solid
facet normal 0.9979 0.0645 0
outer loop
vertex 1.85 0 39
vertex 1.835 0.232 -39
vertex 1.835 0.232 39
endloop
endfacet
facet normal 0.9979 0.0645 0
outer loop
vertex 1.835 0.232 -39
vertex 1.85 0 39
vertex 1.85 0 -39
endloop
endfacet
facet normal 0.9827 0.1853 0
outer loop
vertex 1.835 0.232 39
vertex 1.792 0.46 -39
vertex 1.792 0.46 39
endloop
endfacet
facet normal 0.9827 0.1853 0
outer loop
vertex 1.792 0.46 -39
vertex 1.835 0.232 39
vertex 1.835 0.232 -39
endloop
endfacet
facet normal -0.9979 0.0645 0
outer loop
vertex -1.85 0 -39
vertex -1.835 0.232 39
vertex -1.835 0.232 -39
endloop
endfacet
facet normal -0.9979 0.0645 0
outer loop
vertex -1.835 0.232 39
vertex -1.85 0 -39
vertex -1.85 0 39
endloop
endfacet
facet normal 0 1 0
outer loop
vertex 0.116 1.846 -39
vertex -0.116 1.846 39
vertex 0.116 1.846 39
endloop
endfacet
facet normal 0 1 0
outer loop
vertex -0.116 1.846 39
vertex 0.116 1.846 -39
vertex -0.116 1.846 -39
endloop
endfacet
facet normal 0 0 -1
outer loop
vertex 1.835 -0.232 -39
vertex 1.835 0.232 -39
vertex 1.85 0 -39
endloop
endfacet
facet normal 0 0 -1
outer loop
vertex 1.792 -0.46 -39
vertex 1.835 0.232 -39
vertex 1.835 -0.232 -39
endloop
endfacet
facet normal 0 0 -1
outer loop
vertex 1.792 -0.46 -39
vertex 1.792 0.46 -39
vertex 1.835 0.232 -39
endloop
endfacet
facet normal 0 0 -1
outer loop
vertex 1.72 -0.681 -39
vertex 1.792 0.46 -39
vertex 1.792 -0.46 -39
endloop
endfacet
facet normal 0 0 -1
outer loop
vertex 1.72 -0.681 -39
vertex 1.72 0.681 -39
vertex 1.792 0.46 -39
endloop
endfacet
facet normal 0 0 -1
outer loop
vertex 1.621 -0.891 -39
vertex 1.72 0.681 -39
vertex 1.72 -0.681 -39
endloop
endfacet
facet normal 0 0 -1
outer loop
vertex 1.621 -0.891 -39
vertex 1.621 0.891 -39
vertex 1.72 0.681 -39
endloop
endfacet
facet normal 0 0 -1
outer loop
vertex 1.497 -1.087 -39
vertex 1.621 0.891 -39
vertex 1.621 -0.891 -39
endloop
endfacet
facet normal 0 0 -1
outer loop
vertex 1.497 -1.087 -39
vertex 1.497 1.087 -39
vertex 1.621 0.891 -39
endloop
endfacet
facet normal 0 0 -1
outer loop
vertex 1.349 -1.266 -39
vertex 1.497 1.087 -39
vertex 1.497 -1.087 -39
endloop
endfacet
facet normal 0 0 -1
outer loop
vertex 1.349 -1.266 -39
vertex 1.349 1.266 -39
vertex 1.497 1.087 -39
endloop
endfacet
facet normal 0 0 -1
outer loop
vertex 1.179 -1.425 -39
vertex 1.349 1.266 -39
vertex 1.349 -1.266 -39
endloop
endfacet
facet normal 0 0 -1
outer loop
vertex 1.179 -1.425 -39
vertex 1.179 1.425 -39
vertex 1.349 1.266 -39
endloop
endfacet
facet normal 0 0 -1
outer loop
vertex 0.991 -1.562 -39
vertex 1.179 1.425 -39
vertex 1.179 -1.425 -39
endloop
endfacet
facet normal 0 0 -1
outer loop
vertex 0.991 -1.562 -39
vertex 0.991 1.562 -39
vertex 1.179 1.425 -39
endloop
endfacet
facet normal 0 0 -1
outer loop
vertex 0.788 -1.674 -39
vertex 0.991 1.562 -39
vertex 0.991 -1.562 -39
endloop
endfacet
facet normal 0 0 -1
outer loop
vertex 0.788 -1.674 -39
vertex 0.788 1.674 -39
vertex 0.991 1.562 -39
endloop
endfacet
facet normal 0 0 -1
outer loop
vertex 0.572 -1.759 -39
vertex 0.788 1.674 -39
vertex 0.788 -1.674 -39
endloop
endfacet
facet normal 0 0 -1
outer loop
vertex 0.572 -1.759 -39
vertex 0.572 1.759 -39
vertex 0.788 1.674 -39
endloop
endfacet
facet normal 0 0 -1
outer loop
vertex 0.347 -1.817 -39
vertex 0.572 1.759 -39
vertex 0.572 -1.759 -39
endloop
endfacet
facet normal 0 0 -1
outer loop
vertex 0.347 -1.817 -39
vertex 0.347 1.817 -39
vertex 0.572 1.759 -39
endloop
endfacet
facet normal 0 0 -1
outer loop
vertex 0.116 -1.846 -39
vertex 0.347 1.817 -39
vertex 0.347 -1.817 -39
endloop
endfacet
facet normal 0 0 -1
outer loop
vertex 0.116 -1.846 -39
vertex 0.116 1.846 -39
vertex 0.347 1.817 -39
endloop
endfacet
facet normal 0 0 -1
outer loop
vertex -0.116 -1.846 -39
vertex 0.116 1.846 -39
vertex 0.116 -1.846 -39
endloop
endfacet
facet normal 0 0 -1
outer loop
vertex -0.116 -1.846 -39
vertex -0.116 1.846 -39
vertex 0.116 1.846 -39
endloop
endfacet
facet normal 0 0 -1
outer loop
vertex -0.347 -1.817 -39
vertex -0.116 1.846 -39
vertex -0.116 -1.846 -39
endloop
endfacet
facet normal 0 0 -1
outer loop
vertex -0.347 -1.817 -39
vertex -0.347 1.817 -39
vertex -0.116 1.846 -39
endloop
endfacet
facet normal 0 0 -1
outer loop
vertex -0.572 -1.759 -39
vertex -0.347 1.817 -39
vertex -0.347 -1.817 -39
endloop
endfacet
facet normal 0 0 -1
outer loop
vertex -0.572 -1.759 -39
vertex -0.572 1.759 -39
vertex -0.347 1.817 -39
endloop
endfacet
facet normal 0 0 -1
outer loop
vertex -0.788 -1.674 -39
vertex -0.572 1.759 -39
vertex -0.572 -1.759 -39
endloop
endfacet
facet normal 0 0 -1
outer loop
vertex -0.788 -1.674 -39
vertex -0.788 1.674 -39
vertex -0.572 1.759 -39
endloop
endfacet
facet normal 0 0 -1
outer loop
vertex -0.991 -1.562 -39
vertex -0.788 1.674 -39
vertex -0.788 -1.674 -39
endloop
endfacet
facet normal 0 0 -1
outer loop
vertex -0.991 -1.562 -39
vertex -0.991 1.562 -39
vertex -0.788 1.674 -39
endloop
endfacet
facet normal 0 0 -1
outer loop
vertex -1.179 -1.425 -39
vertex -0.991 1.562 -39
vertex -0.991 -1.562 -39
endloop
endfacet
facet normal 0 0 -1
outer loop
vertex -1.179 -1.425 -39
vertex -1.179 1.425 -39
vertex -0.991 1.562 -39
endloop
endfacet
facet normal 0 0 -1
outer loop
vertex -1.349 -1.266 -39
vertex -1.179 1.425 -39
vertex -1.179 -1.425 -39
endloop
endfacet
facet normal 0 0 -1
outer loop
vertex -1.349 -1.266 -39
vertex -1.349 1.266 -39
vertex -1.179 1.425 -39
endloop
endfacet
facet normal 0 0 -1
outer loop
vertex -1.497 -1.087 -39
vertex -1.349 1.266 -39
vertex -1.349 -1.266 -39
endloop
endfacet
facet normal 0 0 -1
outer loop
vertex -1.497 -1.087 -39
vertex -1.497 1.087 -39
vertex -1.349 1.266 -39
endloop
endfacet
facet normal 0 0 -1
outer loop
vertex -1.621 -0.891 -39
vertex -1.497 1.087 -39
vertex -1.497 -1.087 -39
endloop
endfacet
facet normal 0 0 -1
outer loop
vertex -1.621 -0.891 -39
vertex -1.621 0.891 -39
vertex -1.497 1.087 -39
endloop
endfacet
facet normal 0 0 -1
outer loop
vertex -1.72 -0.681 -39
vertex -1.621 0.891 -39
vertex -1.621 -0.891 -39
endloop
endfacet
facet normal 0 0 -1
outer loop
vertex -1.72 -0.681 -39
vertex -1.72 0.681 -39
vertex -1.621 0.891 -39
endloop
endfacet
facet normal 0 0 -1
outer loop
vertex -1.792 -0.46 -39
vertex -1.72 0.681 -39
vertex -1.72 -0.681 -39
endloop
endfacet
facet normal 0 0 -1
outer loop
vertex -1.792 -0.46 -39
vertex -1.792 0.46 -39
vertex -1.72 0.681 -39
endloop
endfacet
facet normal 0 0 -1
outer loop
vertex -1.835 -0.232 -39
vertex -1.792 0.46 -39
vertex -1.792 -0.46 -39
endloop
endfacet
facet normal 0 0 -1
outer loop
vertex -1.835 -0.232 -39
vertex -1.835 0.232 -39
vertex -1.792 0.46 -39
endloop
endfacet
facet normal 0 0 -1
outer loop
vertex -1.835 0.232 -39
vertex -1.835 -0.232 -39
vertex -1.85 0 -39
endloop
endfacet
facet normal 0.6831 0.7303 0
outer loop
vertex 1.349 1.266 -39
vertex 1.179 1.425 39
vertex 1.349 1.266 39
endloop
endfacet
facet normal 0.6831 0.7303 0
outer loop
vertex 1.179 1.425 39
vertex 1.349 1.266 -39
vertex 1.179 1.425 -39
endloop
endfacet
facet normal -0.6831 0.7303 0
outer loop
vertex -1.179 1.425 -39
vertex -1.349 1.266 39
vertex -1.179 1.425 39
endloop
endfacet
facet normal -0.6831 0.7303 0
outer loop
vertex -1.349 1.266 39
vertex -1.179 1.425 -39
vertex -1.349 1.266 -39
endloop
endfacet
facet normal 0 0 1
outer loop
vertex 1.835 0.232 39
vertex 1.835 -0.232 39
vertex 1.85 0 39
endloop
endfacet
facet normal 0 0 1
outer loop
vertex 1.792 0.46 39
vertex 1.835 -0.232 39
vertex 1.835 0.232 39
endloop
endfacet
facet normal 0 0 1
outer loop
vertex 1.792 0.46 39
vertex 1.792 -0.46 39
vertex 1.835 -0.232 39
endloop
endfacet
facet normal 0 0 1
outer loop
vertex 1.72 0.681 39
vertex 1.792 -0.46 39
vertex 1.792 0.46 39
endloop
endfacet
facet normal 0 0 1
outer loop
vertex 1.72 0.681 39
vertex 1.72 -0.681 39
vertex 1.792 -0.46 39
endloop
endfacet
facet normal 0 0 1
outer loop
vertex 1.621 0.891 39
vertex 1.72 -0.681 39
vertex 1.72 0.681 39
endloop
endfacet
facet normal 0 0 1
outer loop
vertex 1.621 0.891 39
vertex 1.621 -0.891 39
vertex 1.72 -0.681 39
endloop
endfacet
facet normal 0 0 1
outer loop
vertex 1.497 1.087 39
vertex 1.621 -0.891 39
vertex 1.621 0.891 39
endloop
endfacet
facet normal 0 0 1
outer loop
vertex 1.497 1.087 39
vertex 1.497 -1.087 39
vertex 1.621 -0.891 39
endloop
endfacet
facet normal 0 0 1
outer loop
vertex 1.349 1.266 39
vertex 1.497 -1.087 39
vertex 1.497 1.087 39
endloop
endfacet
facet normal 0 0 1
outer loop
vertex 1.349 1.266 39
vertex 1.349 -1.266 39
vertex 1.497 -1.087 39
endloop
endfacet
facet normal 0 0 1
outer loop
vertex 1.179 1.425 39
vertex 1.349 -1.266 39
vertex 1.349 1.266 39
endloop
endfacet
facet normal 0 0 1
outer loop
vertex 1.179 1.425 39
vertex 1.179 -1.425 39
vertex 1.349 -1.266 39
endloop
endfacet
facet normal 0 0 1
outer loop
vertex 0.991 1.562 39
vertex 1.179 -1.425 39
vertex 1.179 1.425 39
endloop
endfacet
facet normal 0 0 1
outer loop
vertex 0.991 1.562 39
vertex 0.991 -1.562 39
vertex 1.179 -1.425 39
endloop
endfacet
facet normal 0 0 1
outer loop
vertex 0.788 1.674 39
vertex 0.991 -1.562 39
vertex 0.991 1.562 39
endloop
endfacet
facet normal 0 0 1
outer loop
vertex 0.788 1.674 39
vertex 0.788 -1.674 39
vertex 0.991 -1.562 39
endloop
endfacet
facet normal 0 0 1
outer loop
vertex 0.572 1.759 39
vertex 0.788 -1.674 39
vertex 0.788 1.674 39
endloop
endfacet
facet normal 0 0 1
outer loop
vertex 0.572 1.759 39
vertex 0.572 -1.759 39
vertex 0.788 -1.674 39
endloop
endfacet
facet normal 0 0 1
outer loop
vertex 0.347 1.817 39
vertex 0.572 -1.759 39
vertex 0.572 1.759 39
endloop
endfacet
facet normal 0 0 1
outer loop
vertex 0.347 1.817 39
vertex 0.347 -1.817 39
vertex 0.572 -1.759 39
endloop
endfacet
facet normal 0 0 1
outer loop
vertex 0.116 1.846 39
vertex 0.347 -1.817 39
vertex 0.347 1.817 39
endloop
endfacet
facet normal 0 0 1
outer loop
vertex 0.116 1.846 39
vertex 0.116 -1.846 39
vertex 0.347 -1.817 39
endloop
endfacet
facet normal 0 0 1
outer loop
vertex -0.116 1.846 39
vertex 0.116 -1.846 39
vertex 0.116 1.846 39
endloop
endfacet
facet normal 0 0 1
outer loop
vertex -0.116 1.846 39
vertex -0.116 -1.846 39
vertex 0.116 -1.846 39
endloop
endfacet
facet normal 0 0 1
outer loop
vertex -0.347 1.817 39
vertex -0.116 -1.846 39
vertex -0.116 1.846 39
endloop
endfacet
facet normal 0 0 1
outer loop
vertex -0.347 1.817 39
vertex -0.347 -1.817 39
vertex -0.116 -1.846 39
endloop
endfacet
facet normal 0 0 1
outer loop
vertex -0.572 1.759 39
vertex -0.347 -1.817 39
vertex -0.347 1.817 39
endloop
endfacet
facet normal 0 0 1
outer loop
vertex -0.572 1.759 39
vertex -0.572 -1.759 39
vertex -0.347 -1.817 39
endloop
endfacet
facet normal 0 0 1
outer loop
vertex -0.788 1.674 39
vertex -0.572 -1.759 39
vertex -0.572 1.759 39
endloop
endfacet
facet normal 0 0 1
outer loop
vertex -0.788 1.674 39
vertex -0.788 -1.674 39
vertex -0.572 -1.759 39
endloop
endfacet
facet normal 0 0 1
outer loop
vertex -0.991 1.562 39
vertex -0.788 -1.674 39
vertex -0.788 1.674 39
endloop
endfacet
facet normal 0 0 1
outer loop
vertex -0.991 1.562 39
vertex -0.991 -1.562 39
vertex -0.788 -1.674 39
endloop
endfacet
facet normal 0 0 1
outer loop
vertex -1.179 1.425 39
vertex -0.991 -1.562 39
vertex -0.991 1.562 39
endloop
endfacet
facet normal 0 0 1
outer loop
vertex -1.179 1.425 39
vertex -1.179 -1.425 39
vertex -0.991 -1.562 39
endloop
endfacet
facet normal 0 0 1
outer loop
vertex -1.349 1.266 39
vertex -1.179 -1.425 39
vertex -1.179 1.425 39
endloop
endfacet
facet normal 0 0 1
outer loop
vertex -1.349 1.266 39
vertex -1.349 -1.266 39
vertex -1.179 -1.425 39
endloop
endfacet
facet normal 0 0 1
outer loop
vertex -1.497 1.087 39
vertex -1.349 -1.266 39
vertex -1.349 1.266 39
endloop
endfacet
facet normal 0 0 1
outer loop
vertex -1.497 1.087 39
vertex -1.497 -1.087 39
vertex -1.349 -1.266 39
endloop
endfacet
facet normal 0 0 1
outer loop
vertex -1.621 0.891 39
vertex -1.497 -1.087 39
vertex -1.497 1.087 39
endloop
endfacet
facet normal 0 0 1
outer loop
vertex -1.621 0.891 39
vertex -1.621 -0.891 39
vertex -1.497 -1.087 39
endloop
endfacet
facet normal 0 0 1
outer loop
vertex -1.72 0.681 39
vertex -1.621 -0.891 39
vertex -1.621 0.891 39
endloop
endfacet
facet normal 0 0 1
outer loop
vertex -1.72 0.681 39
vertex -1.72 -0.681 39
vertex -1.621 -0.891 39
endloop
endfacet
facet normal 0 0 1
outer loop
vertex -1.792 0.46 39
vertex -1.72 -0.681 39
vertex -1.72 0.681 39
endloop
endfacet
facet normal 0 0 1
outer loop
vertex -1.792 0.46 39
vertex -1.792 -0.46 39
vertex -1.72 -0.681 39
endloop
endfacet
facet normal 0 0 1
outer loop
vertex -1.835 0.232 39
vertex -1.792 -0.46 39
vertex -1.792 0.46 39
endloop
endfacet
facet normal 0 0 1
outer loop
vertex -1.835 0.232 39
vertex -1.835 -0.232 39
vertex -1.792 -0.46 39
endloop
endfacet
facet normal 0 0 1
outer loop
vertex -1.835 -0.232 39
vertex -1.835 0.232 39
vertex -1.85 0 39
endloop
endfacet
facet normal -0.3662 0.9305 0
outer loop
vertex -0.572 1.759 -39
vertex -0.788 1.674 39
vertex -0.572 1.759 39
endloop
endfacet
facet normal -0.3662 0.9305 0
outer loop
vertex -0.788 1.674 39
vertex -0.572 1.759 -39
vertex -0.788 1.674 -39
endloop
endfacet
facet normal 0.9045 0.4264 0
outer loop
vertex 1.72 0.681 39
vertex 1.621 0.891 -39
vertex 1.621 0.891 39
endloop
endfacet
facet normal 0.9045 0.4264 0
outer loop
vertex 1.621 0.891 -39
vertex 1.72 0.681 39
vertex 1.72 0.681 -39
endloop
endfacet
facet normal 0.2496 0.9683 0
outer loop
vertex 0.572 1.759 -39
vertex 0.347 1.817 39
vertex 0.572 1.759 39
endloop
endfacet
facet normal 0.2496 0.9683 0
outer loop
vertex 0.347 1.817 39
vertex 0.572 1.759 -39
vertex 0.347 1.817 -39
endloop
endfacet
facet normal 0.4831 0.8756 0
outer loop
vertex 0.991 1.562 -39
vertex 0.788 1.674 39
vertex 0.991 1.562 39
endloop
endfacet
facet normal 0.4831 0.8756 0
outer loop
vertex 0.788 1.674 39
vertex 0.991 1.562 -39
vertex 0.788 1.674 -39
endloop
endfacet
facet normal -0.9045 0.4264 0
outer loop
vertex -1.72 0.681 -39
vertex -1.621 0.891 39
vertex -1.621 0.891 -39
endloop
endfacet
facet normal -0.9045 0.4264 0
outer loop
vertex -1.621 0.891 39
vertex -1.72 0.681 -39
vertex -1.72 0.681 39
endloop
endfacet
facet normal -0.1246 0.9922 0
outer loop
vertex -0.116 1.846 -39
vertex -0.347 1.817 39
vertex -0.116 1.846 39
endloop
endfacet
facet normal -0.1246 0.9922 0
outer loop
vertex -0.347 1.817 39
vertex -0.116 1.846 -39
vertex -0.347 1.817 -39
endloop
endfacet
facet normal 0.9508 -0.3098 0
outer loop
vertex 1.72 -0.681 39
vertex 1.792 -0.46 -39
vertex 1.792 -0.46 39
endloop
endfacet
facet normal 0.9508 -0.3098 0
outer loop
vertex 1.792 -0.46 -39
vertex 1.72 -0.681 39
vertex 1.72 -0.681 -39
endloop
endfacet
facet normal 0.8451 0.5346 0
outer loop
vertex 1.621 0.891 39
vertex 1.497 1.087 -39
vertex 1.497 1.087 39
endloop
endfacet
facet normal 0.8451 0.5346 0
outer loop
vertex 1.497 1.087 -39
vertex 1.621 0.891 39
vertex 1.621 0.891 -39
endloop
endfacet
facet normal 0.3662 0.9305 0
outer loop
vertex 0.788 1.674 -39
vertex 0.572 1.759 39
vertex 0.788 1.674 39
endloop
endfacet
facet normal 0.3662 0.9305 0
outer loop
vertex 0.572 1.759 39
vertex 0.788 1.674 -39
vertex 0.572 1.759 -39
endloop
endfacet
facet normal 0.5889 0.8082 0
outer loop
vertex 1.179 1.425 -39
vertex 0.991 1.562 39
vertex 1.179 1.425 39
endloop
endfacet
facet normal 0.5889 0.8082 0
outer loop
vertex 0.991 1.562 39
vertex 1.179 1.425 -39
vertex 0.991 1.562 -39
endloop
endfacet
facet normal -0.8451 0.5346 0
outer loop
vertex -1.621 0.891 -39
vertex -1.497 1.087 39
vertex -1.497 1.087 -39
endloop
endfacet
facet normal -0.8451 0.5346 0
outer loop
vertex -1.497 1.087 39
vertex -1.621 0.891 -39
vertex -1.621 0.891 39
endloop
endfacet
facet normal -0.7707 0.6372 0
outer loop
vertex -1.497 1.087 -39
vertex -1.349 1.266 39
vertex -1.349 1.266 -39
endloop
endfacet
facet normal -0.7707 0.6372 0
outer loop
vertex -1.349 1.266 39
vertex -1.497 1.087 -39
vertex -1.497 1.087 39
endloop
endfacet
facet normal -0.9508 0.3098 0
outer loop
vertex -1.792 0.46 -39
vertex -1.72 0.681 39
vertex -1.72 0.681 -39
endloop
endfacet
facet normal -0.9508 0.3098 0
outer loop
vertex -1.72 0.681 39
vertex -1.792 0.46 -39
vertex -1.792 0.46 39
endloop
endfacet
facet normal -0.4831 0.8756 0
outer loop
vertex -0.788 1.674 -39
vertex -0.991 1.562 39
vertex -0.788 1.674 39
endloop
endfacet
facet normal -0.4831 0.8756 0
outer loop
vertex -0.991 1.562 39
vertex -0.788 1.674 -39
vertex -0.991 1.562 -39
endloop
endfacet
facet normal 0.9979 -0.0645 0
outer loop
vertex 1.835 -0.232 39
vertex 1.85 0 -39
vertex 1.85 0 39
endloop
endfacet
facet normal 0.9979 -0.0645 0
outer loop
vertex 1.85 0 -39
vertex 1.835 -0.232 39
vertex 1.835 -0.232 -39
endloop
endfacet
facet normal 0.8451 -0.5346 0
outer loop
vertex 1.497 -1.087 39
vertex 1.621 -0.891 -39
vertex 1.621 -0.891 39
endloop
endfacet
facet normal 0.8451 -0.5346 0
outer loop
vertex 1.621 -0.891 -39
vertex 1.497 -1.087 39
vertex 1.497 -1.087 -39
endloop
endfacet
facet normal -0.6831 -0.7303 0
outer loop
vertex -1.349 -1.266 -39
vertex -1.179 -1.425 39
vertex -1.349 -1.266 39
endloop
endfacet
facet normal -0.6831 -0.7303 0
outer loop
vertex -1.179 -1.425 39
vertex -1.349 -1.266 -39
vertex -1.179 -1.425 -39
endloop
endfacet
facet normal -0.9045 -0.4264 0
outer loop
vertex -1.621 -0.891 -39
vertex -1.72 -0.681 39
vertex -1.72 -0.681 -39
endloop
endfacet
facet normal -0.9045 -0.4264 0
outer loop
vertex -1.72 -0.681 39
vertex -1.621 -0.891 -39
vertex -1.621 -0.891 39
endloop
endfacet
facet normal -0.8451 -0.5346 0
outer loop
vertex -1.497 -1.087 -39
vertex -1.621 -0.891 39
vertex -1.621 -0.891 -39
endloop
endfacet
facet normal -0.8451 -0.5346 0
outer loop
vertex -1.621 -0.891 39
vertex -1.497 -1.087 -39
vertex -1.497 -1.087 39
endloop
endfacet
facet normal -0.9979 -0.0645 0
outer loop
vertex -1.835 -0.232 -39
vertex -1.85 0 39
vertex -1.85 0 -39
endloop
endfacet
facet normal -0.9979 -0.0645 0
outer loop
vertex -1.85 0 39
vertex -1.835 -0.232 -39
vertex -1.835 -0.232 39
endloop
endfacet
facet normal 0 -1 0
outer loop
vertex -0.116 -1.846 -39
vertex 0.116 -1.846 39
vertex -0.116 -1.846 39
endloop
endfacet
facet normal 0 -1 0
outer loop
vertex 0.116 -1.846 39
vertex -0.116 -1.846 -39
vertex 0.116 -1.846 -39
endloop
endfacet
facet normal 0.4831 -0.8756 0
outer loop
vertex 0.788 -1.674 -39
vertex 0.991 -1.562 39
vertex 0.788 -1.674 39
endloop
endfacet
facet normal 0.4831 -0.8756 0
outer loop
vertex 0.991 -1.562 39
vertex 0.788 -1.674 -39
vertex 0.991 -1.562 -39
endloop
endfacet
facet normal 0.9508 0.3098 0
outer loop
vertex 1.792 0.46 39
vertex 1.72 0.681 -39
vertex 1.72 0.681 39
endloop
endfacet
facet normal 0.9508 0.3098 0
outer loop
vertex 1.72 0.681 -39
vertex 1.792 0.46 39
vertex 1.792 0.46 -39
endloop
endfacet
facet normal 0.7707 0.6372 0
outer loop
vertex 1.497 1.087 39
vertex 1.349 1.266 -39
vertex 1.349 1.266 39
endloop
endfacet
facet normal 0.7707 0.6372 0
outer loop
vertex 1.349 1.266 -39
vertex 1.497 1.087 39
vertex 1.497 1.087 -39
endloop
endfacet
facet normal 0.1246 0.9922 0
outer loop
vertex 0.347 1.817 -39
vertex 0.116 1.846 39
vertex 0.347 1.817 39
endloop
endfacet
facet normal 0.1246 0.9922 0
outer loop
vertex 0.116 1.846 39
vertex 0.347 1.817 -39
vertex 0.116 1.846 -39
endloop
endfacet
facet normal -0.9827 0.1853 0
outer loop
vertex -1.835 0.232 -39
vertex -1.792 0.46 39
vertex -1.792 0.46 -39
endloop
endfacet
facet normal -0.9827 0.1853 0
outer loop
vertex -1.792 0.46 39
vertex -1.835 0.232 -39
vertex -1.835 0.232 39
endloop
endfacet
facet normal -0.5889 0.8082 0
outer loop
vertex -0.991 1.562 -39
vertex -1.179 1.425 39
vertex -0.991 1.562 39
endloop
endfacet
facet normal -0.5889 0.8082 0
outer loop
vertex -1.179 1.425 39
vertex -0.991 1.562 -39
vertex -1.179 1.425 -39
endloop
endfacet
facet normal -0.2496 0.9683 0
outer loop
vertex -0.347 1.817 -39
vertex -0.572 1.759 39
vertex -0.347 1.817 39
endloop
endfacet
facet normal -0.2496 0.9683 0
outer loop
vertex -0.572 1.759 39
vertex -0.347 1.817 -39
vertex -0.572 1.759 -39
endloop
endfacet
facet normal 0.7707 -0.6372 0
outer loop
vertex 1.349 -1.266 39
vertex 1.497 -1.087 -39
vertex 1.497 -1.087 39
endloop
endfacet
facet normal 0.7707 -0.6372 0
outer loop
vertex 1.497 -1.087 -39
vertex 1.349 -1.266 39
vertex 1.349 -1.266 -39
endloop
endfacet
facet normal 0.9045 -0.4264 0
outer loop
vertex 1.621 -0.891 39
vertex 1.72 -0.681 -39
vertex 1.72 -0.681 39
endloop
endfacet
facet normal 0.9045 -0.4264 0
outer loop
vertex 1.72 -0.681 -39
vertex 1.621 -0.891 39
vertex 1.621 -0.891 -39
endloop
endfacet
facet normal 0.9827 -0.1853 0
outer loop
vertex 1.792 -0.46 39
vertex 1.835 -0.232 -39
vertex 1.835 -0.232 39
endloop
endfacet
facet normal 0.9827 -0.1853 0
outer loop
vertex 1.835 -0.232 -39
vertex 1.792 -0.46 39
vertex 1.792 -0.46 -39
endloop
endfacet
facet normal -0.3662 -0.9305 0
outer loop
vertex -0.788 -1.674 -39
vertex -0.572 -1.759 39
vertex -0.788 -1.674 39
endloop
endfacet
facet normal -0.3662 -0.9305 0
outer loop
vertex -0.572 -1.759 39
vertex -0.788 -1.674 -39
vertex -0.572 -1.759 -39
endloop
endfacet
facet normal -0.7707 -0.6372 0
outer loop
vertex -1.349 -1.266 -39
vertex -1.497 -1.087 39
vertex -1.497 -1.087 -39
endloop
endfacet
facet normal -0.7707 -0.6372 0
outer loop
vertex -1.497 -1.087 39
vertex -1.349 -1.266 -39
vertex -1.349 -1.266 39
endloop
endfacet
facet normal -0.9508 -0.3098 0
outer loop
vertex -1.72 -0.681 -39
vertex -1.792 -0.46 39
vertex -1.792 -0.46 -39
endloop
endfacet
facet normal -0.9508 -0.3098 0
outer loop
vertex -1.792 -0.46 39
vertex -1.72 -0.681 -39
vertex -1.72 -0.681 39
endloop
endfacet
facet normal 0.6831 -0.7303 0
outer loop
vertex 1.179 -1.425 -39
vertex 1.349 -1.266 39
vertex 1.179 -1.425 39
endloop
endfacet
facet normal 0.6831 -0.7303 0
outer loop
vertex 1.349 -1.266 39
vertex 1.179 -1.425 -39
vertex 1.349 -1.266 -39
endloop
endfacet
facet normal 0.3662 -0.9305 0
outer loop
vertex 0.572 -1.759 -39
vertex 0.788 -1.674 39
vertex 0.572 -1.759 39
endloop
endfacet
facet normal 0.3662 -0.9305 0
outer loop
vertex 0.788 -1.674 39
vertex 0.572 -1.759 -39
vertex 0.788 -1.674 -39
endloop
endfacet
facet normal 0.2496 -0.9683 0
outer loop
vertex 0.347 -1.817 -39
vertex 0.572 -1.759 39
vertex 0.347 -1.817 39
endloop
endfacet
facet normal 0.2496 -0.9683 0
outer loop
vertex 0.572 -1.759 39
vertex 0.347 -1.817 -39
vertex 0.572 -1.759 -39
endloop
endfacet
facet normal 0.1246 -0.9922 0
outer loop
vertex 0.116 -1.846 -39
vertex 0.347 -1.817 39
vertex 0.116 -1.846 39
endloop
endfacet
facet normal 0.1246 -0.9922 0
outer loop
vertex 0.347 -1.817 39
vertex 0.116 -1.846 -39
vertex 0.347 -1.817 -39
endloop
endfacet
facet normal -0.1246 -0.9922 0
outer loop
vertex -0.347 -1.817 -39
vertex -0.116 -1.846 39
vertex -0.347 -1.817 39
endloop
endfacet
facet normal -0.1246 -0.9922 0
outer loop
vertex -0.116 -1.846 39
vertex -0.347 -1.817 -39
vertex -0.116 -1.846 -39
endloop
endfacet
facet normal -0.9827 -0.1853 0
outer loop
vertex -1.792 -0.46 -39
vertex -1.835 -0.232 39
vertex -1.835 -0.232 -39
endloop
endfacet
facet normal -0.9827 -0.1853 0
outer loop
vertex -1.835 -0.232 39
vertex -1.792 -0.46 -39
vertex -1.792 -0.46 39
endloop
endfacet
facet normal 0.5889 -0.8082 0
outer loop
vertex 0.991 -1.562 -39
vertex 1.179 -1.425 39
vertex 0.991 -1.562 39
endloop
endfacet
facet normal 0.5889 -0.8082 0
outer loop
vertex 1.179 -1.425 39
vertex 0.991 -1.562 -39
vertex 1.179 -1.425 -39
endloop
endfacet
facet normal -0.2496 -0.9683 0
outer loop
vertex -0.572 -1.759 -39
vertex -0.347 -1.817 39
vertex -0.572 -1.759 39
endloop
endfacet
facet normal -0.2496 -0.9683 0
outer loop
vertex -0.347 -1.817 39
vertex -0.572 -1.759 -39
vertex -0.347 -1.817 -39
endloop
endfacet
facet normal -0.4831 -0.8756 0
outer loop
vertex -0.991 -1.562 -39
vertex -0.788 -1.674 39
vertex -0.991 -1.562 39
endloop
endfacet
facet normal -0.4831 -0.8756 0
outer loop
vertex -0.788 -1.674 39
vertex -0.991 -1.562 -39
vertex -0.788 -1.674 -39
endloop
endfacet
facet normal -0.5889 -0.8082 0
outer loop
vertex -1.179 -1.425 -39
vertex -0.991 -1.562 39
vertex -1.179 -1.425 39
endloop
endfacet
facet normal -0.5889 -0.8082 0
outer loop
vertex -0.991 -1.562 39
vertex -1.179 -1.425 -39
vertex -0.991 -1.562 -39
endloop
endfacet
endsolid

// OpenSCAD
$fn = 50;


difference() {
	union() {
		translate(v = [0, 0, -39.0000000000]) {
			cylinder(h = 78, r = 1.8500000000);
		}
	}
	union() {
		translate(v = [0, 0, -100.0000000000]) {
			cylinder(h = 200, r = 0);
		}
	}
}
